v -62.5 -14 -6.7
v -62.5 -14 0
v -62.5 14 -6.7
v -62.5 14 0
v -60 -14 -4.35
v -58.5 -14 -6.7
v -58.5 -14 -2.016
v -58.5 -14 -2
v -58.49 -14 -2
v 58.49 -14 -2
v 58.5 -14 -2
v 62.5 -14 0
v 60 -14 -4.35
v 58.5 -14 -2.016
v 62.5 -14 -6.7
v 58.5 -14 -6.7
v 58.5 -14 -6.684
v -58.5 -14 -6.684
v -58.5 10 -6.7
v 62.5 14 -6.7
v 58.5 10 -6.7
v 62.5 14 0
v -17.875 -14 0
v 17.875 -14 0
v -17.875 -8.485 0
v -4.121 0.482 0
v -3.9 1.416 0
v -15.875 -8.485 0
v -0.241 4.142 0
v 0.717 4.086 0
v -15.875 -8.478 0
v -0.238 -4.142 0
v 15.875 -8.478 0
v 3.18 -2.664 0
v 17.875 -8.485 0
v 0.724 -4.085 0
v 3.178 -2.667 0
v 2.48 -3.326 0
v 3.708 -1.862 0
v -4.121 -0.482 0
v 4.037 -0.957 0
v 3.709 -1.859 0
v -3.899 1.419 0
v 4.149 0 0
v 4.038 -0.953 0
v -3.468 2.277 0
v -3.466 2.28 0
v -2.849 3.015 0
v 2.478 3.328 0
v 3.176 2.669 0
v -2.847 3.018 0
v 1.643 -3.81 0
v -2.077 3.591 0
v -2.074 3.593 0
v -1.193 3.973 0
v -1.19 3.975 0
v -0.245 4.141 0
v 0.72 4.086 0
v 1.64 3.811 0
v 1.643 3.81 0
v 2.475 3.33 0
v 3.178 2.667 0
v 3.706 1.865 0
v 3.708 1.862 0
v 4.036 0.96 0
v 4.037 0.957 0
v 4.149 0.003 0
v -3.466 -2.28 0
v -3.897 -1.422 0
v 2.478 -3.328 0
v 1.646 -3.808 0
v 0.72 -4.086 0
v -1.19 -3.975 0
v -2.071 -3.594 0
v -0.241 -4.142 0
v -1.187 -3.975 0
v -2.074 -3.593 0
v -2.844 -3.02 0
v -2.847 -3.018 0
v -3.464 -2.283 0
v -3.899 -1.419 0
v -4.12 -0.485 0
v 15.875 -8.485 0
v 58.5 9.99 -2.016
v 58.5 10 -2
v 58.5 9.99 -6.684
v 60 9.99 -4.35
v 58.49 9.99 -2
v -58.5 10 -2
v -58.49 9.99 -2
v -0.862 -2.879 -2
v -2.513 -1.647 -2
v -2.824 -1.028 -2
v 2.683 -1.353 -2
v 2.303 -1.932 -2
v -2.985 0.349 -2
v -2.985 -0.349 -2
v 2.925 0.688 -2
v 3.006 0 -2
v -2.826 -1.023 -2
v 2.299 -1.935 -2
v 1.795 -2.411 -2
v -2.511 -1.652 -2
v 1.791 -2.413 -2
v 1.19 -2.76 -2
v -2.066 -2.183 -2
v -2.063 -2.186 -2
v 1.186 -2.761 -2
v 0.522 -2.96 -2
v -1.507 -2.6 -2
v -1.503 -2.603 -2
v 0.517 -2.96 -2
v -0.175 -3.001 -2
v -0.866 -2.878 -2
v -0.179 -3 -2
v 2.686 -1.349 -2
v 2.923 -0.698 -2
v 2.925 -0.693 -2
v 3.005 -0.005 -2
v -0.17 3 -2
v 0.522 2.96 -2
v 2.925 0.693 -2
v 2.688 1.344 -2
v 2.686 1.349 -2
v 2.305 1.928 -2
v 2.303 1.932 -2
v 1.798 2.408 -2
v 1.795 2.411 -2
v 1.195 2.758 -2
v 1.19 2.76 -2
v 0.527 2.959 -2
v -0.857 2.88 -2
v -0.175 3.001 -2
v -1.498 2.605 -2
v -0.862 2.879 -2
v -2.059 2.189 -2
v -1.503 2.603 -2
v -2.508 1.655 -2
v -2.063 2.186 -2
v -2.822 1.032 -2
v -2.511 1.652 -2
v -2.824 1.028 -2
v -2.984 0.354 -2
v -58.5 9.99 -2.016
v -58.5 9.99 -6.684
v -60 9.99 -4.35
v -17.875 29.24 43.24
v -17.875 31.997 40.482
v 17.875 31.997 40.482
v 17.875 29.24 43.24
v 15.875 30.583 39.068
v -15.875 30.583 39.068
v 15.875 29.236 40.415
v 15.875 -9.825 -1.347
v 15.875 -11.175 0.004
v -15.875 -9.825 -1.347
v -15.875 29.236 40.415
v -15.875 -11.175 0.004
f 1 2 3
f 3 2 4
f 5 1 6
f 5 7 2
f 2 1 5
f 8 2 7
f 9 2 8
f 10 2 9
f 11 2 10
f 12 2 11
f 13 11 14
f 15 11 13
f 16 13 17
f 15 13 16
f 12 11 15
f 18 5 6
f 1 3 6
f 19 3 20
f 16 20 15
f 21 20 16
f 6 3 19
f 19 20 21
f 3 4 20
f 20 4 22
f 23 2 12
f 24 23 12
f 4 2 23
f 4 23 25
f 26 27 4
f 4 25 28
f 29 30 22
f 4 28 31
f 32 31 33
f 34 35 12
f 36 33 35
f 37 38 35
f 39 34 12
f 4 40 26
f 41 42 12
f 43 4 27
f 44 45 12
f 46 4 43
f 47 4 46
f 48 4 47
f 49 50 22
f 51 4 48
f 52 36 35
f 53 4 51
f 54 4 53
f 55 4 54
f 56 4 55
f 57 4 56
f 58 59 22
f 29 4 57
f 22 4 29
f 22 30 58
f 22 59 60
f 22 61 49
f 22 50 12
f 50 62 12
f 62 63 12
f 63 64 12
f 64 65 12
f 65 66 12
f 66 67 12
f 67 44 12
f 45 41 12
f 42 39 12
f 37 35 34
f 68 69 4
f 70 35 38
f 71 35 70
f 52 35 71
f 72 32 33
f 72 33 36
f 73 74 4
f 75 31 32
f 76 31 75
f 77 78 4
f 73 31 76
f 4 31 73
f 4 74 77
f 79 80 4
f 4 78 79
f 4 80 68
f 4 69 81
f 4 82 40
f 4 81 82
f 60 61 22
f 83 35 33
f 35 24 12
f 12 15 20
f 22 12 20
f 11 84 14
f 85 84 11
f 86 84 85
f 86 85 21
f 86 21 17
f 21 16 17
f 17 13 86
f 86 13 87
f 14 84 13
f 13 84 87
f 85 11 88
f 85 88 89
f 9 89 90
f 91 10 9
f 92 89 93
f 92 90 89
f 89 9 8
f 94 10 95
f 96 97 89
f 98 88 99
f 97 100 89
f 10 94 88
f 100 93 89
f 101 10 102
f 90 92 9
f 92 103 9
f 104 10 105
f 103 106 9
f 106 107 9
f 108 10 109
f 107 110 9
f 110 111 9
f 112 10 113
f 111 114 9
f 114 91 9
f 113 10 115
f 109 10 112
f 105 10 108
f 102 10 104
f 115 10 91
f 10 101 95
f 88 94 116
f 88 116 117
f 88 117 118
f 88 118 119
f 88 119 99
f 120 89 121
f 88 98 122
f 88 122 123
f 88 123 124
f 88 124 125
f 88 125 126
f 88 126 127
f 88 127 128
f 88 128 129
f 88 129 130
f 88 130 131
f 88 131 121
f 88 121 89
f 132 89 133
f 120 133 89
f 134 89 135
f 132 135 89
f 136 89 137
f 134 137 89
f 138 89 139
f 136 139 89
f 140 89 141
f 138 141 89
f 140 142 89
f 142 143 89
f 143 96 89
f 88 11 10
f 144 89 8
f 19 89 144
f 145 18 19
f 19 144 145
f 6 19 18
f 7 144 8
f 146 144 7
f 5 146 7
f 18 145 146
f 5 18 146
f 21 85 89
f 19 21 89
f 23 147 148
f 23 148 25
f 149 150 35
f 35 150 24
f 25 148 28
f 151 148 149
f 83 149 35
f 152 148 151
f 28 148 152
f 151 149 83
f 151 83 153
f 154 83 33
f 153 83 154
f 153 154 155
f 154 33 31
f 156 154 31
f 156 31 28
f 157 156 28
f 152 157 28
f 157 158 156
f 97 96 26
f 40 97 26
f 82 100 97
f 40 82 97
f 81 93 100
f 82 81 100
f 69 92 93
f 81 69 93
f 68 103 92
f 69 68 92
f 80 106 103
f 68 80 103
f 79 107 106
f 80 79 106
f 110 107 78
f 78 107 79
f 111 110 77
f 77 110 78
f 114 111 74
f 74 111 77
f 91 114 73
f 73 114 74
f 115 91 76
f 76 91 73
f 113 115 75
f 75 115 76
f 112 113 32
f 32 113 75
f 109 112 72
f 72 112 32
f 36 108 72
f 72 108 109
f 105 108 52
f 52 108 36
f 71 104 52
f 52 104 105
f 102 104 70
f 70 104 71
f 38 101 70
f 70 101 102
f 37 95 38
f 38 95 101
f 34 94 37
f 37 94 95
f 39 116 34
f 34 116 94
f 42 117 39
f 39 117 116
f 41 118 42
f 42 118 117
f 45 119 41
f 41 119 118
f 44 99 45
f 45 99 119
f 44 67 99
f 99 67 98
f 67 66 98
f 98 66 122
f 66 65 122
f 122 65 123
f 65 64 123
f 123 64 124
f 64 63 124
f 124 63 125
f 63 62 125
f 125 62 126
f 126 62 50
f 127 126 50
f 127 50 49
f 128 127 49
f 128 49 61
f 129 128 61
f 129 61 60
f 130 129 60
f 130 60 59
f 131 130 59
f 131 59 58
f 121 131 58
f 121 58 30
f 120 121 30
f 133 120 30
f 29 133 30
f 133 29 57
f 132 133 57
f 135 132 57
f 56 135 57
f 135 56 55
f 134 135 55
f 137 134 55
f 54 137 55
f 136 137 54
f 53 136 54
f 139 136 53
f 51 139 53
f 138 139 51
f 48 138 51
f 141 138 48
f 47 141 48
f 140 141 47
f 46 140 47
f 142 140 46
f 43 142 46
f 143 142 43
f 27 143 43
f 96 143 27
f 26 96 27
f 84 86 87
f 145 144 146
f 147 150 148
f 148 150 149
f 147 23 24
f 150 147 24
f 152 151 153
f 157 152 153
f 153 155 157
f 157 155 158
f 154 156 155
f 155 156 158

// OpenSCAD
/* Nexus 7 (first edition) front-facing camera mirror holder.

   Design by Frank Thorley.
   Code by Mike Koss Jr.

   Oct 1, 2013.
*/

// Misc constants
E = 0.01;
INCHES = 25.4;
GAP = 0.2;

// Default cylinder resolution
$fa = 3;
$fs = 1;

// Nexus 7 measurements
N7_WIDTH = 119.0 + 1.0;      // Add slop for looser fit.
N7_FLANGE = 1.5;
N7_CASE_DEPTH = 4.7;
CAMERA_INSET = 10.0;
CAMERA_OPENING = 6.0;

// Max field of view (degrees)
FIELD_OF_VIEW = 60.0;
VIEW_EXTENT = 75;

// Design constants
THICKNESS = 2.0;
FRAME_WIDTH = 4.0;
MIRROR_WIDTH = 1.25 * INCHES;
MIRROR_HEIGHT = 2.25 * INCHES;
MIRROR_THICKNESS = 1.9;

base_width = N7_WIDTH + 2 * (FRAME_WIDTH - N7_FLANGE);
base_height = 2 * (CAMERA_INSET + FRAME_WIDTH);
base_depth = N7_CASE_DEPTH + THICKNESS;
echo("Internal", base_width - 2 * FRAME_WIDTH + 2 * N7_FLANGE);
echo(tan(FIELD_OF_VIEW / 2));
module assembly() {
  difference() {
    union() {
      base();
      mirror_holder();
    }
  # mirror_glass();
  }
}

module base(connector=false) {
  oculus = CAMERA_OPENING + 2 * THICKNESS * tan(FIELD_OF_VIEW / 2);
  mirror_dist = THICKNESS + base_height / 2 - THICKNESS - MIRROR_THICKNESS;
  virt_cam_y = -mirror_dist;
  virt_cam_z = mirror_dist - THICKNESS;

   % translate([0, virt_cam_y, virt_cam_z])
      rotate(-90, v=[1, 0, 0])
      cylinder(r1=CAMERA_OPENING / 2,
               r2=CAMERA_OPENING / 2 + VIEW_EXTENT * tan(FIELD_OF_VIEW / 2),
               h=VIEW_EXTENT);
  translate([0, 0, -base_depth / 2])
  difference() {
    cube([base_width, base_height, base_depth], center=true);
    translate([0, 0, base_depth / 2 - THICKNESS - E])
      cylinder(r1=CAMERA_OPENING / 2, r2=oculus / 2, h=THICKNESS + 2 * E);
    translate([0, -FRAME_WIDTH, -THICKNESS])
      cube([base_width - 2 * FRAME_WIDTH, base_height, base_depth], center=true);

    // Rout out side bezels
    translate([-N7_WIDTH  / 2 + N7_FLANGE, -base_height / 2 - E, -THICKNESS / 2])
      router(height=N7_CASE_DEPTH, depth=N7_FLANGE, length=base_height - FRAME_WIDTH);
    translate([N7_WIDTH  / 2 - N7_FLANGE, -base_height / 2 - E, -THICKNESS / 2])
      mirror([1, 0, 0])
        router(height=N7_CASE_DEPTH, depth=N7_FLANGE, length=base_height - FRAME_WIDTH);
  }
}

module mirror_holder() {
  width = MIRROR_WIDTH + 2 * THICKNESS;
  height = MIRROR_HEIGHT + 2 * THICKNESS;
  depth = MIRROR_THICKNESS + THICKNESS;


  difference() {
    translate([-width / 2, -base_height / 2, 0])
      rotate(a=45, v=[1, 0, 0])
        translate([0, 0, -depth])
          cube([width, height, depth]);
    translate([0, 0, -100 - E])
      cube([200, 200, 200], center=true);
  }
}

module mirror_glass() {
  translate([0, -(CAMERA_INSET + FRAME_WIDTH) + THICKNESS * sqrt(2), 0])
  rotate(a=45, v=[1, 0, 0])
    translate([0, MIRROR_HEIGHT / 2, - MIRROR_THICKNESS / 2])
      cube([MIRROR_WIDTH, MIRROR_HEIGHT, MIRROR_THICKNESS + E], center=true);
}


/* Rout a triangular bevel of specified dimensions.

   Orientation is centered along z-axis (height),
   and running length along y-axis from origin.

        1
        __________ 4
       /|        /|
    0 /_|______3/ |
      \ |       \ |
       \|________\|
        2          5

   Note that the route extends E to the right or origing
   to ensure overlap coverage of face of routed surface.
*/
module router(height, depth, length) {
   polyhedron(
      points=[[-depth, 0, 0],
              [E, 0, height / 2],
              [E, 0, -height / 2],

              [-depth, length, 0],
              [E , length, height / 2],
              [E, length, -height / 2]
              ],
      triangles=[[0, 1, 2],              // front
                 [2, 1, 4], [2, 4, 5],   // right
                 [0, 3, 4], [0, 4, 1],   // top
                 [0, 2, 5], [0, 5, 3],   // bottom
                 [3, 5, 4]               // back
                 ]);
}

/*
difference() {
  mirror_holder();
  mirror_glass();
}
*/
assembly();
